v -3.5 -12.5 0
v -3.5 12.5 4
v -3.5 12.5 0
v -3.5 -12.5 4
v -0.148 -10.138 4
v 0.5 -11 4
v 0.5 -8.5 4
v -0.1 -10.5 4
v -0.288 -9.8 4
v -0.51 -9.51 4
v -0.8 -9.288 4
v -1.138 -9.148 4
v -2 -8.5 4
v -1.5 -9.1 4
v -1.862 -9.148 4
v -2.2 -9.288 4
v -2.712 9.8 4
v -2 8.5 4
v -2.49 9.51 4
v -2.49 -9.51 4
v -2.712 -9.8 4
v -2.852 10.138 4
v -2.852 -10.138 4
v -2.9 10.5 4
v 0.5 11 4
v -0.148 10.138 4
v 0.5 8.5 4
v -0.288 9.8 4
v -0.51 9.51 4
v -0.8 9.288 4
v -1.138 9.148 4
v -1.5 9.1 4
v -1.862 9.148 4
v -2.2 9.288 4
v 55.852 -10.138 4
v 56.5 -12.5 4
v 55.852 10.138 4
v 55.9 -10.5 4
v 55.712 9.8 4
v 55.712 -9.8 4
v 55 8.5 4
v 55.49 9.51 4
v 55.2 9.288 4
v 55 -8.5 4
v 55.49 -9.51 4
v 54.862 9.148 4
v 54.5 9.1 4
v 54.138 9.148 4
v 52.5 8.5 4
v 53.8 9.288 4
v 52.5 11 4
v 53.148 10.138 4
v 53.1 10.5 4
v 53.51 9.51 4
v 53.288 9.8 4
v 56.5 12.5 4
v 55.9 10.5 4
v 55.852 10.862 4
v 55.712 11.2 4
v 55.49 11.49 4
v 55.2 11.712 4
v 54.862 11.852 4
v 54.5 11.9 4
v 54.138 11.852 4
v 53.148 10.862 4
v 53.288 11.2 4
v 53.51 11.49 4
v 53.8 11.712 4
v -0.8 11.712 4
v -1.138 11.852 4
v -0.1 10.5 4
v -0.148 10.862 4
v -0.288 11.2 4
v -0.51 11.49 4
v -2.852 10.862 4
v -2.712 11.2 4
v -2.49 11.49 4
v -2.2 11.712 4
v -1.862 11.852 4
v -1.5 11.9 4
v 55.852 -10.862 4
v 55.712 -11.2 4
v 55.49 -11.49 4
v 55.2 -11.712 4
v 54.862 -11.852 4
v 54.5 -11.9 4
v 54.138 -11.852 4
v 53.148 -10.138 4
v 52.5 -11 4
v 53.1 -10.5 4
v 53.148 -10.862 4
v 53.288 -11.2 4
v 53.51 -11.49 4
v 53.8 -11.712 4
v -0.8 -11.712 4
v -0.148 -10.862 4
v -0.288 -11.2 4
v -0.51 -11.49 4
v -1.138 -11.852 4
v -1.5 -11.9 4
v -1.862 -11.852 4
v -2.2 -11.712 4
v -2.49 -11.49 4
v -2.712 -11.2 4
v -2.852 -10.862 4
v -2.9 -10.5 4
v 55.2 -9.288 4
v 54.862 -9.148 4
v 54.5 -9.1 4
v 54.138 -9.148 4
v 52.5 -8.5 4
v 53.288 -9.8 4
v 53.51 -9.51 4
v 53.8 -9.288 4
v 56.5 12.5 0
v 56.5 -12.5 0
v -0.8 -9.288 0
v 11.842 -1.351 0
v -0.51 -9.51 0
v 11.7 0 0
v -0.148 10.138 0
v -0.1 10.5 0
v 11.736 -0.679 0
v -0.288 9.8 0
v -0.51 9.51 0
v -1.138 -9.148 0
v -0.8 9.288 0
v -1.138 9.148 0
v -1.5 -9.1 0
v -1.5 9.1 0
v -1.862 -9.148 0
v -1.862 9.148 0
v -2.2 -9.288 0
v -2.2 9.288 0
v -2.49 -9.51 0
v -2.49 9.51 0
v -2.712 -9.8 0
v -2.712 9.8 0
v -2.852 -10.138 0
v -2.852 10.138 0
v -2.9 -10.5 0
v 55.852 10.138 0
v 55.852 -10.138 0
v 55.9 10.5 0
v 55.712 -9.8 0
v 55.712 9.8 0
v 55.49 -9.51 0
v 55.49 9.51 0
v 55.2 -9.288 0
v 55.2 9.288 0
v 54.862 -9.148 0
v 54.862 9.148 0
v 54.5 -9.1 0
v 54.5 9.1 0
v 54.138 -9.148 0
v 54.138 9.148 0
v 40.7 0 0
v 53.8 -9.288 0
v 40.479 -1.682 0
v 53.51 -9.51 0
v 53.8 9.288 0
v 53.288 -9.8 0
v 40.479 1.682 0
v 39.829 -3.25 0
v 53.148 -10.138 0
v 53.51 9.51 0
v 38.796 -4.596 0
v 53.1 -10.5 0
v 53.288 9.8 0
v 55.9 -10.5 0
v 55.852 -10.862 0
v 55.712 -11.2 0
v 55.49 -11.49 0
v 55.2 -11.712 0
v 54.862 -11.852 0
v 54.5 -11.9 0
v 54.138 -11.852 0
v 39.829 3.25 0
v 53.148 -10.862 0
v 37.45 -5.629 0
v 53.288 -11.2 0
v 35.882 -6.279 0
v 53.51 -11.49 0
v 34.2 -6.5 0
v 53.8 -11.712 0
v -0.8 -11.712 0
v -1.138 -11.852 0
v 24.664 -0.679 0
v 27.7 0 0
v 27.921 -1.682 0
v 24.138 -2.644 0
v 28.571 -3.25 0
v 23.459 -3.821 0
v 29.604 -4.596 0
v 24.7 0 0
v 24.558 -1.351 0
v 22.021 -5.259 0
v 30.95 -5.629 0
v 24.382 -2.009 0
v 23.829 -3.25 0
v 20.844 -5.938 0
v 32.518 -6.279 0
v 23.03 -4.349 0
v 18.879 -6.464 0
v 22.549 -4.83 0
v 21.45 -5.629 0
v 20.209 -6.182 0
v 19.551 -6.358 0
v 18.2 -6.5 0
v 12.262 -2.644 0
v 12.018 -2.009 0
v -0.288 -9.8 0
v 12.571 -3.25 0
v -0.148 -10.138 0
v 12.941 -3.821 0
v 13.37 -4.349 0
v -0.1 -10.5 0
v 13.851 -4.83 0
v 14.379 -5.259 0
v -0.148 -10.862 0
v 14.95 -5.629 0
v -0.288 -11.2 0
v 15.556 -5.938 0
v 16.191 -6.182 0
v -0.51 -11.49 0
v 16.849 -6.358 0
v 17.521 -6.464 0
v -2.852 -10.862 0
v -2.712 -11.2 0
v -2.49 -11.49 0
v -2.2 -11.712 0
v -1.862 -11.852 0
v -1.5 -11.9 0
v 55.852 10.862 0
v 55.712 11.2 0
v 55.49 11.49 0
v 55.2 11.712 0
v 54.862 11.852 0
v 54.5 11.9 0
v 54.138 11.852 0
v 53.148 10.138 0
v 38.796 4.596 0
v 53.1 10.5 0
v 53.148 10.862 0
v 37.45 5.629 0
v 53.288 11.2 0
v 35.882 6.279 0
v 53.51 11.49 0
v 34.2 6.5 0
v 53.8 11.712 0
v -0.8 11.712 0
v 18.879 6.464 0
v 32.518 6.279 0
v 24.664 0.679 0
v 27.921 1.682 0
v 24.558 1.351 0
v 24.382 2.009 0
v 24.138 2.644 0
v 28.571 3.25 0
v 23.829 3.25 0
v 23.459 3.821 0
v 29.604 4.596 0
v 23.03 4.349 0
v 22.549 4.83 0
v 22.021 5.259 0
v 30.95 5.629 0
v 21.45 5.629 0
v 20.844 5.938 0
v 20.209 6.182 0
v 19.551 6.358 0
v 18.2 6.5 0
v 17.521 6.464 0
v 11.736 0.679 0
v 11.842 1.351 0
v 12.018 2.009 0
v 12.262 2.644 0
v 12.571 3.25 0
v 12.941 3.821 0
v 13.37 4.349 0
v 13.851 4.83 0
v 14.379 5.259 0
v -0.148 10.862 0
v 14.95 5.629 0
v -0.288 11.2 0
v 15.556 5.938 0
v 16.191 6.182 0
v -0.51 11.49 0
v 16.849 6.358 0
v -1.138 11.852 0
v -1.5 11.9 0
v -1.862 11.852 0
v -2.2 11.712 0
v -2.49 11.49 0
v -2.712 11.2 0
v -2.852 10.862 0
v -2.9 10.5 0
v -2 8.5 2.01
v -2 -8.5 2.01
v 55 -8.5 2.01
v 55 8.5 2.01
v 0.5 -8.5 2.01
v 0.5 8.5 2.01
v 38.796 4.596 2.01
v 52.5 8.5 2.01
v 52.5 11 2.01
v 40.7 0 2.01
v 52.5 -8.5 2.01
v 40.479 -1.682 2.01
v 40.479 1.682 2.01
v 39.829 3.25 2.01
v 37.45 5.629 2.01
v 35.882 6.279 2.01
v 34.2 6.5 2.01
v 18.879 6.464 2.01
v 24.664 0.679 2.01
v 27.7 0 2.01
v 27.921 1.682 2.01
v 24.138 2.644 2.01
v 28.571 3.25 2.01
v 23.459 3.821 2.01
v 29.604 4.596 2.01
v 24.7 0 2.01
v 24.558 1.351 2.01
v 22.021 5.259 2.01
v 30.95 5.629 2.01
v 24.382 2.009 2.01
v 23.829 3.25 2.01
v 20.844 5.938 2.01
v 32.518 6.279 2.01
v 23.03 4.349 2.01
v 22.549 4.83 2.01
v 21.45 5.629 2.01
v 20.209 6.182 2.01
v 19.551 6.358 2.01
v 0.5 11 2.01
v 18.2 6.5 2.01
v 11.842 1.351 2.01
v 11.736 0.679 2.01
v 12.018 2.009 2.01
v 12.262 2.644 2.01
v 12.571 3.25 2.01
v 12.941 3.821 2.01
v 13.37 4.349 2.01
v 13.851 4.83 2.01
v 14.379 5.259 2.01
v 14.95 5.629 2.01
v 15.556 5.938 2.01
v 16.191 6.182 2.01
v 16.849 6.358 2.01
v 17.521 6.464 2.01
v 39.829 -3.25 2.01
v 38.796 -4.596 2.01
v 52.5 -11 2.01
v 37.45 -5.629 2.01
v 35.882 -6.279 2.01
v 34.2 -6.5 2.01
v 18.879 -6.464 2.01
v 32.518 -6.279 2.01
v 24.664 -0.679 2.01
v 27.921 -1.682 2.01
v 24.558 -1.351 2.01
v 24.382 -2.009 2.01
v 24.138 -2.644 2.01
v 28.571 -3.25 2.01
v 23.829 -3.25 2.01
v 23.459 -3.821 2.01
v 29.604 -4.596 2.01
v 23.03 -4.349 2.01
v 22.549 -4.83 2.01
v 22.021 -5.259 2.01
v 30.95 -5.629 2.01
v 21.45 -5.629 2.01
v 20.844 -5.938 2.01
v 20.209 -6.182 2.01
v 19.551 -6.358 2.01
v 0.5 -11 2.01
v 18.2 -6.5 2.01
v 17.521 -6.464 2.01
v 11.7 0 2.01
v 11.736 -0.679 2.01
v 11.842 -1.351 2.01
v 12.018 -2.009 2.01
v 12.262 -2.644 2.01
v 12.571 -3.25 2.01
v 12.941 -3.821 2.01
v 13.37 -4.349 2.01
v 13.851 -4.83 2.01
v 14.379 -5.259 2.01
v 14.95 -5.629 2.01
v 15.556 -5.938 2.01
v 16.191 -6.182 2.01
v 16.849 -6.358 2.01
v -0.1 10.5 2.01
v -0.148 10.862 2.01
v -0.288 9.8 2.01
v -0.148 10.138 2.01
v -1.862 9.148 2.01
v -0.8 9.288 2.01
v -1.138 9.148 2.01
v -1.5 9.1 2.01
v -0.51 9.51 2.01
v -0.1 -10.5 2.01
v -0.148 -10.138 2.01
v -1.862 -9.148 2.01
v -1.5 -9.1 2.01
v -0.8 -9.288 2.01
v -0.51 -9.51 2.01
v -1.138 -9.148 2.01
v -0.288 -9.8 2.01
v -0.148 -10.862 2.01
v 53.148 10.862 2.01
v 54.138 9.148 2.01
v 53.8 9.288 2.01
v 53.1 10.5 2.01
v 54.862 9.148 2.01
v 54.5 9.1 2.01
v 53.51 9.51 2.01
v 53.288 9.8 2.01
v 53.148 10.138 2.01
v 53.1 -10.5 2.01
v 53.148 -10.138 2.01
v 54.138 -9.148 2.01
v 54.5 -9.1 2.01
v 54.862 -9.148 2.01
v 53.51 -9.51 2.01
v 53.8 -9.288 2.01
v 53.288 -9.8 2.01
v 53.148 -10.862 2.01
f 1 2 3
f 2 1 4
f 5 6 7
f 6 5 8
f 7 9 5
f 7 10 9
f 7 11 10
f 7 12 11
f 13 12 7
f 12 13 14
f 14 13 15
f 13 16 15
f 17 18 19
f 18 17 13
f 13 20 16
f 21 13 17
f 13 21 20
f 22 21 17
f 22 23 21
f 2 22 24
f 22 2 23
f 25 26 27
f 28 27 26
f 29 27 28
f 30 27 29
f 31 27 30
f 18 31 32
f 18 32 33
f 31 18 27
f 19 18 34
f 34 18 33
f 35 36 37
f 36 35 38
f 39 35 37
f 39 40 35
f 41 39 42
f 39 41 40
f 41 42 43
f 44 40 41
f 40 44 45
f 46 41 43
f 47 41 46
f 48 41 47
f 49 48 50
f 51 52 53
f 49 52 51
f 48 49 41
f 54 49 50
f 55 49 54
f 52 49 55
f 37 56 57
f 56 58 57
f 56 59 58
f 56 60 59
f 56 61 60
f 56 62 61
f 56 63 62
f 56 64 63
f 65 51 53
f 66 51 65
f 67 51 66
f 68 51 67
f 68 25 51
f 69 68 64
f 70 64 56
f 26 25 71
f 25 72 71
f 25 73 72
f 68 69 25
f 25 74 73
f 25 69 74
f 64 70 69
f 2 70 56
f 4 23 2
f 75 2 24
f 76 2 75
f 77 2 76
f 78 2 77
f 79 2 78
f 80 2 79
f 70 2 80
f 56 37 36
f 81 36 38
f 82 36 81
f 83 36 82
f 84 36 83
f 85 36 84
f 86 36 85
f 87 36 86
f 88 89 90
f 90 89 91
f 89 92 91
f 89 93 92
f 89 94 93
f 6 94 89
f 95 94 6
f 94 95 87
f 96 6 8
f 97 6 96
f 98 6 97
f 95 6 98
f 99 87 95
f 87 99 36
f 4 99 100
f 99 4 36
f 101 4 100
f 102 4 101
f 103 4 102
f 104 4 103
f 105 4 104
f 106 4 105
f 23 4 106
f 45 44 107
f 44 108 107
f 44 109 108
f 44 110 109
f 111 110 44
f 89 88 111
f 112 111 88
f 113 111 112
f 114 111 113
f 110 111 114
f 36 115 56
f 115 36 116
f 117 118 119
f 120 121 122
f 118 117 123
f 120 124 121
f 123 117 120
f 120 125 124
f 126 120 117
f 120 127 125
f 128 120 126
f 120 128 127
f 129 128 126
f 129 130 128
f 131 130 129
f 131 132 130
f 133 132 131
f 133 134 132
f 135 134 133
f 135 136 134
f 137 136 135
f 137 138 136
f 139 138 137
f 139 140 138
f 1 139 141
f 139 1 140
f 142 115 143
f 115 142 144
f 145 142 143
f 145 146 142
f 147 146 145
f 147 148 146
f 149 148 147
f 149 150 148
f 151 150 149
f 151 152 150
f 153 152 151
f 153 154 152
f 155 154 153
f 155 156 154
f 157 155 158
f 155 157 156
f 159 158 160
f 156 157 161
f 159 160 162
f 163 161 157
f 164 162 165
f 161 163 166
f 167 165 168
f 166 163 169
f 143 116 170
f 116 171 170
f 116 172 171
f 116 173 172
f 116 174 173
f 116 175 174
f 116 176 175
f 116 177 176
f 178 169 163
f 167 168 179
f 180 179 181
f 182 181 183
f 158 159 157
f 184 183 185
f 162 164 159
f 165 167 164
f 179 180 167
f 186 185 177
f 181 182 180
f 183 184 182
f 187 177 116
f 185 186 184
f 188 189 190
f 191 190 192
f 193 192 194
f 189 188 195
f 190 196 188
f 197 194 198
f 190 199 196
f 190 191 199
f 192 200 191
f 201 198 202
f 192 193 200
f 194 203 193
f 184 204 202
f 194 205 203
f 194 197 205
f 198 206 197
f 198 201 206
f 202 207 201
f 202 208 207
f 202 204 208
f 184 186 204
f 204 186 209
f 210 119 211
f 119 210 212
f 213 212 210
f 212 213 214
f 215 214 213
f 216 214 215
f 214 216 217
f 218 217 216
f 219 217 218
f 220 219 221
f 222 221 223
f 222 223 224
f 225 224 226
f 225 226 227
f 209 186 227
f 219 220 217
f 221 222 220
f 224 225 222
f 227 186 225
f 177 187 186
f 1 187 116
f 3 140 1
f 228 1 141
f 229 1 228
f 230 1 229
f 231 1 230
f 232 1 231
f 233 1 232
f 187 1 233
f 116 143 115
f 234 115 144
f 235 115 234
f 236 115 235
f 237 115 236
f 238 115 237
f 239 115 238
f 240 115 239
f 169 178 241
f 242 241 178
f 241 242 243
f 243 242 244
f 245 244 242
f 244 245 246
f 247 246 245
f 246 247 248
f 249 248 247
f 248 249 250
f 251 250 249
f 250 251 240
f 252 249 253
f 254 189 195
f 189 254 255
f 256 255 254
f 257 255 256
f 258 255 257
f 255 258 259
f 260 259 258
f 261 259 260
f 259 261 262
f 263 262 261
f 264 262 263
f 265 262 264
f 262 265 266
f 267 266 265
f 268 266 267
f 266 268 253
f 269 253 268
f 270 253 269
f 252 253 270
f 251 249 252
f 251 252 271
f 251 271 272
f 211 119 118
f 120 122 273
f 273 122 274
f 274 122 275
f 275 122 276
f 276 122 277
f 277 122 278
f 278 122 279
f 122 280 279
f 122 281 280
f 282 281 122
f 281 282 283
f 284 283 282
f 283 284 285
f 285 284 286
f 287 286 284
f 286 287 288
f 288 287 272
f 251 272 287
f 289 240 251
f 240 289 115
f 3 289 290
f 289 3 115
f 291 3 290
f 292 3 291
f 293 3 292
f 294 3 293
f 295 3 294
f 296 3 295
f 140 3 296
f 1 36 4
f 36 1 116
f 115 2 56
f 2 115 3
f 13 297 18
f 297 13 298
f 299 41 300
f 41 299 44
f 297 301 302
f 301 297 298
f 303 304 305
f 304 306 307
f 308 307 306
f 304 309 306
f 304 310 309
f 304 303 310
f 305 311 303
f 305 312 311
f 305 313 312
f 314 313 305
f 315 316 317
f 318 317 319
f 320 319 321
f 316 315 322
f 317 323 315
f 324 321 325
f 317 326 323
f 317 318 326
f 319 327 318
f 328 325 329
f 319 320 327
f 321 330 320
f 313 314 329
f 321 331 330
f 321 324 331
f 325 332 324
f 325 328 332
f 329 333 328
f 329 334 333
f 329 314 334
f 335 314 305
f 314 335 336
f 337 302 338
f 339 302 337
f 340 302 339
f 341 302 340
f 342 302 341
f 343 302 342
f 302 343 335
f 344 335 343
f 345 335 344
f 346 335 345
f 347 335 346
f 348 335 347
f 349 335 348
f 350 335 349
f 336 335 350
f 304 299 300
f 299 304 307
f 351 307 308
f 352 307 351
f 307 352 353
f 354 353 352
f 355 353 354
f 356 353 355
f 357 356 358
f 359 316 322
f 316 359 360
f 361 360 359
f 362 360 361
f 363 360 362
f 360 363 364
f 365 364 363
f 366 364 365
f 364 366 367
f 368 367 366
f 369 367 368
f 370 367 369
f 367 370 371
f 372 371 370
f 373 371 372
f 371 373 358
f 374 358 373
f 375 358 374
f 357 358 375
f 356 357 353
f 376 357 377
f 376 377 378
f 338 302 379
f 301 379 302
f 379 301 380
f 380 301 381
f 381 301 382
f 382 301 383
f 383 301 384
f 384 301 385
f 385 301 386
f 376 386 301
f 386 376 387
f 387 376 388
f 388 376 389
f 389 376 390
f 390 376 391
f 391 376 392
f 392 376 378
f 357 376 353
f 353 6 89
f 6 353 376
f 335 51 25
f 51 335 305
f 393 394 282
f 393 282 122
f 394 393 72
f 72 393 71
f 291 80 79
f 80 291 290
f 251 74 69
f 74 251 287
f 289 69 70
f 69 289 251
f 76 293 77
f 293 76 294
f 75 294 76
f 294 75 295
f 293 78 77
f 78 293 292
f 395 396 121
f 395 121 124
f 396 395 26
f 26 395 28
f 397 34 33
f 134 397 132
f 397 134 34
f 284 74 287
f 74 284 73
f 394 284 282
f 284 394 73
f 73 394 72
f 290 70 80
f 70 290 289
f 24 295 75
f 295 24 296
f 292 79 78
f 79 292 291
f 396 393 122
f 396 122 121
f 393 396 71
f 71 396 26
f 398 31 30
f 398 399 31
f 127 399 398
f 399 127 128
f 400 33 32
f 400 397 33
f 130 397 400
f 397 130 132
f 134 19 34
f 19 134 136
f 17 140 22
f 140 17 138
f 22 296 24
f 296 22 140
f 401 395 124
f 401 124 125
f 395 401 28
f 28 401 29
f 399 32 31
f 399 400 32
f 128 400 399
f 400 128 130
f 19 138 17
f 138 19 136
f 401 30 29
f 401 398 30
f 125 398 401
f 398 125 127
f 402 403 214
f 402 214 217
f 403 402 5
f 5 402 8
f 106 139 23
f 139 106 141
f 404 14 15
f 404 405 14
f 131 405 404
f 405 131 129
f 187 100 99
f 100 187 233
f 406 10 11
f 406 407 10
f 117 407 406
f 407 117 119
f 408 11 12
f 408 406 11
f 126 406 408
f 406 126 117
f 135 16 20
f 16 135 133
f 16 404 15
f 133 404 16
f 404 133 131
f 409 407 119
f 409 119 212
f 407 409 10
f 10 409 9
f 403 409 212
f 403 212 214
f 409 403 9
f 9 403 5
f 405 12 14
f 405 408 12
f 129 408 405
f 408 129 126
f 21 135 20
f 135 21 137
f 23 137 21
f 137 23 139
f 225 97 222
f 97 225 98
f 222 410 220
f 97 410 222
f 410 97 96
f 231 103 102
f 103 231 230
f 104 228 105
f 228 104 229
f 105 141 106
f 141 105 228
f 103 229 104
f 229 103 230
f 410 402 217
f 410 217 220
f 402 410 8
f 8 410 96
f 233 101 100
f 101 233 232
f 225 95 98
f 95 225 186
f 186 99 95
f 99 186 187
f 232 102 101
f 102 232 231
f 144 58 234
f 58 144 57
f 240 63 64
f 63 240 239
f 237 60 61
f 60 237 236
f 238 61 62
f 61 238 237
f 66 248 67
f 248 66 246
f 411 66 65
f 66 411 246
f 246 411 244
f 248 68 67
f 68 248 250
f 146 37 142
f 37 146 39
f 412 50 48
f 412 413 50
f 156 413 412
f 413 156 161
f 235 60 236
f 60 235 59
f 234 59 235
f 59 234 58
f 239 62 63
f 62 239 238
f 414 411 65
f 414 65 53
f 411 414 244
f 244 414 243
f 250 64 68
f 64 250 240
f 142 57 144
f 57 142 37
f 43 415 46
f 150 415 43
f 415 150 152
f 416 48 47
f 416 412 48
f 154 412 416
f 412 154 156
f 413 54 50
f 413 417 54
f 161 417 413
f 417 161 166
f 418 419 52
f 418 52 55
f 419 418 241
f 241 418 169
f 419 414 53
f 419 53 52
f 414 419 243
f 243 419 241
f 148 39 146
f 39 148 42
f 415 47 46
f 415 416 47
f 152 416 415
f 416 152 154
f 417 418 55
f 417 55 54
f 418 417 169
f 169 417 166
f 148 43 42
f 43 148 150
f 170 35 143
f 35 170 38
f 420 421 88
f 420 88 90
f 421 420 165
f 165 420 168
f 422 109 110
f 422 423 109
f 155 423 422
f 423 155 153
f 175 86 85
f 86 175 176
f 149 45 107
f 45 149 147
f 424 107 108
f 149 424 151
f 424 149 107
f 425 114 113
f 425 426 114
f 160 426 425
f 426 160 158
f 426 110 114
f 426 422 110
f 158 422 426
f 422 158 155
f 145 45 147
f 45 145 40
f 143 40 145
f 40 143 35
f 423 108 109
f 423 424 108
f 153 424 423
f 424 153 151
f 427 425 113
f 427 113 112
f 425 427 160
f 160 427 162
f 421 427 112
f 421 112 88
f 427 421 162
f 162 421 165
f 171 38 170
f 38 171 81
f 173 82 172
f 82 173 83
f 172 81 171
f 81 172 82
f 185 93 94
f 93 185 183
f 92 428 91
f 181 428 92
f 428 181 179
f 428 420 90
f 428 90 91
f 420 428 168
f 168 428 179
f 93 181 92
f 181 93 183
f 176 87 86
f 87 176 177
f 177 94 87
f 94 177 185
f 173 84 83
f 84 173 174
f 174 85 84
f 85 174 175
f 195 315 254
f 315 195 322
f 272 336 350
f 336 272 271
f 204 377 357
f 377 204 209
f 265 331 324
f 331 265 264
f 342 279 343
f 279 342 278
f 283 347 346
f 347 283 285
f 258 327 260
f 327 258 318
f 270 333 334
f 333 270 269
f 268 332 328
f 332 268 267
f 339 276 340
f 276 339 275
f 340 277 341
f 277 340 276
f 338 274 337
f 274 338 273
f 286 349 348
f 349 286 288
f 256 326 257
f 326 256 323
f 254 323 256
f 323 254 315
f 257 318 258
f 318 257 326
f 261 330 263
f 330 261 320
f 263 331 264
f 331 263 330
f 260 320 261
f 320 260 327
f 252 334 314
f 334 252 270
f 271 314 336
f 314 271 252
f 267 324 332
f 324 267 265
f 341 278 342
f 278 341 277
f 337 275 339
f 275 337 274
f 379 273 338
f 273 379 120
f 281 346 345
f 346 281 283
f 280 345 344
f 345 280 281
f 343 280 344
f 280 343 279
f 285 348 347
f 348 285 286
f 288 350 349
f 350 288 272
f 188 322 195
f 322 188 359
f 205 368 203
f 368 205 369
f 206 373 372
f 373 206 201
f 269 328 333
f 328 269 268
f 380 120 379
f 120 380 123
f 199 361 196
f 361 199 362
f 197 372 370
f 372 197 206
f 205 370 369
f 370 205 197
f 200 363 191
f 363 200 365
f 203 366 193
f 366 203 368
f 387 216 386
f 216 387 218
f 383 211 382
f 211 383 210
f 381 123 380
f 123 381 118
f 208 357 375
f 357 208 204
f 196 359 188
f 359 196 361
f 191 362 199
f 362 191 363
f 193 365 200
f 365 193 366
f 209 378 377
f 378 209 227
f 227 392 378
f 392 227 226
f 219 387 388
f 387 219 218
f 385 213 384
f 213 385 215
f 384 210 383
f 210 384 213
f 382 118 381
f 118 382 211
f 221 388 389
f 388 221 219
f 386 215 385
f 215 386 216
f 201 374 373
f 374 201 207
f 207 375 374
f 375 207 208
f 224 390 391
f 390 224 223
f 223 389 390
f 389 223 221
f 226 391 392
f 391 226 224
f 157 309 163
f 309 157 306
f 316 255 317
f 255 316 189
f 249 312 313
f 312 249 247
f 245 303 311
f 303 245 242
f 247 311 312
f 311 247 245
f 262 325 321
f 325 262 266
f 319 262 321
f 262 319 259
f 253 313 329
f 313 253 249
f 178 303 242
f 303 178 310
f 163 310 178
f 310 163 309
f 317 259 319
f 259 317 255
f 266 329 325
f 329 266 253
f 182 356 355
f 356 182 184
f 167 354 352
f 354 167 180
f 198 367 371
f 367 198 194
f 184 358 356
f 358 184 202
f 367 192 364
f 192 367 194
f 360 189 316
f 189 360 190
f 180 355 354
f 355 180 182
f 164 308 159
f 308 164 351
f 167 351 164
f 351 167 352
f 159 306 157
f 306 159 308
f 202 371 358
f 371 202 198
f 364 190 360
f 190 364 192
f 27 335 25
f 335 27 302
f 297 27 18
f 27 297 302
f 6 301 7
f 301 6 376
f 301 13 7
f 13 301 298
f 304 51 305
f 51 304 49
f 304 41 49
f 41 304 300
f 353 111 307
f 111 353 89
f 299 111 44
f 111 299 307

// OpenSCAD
$fn=24;

difference(){
translate([-3.5,-12.5,0])cube([60,25,4]);
translate([-2,-11,2.01])cube([57,22,20]);
translate([-1.5,10.5,-1])cylinder(d=2.8,h=10);
translate([-1.5,-10.5,-1])cylinder(d=2.8,h=10);
translate([54.5,10.5,-1])cylinder(d=2.8,h=10);
translate([54.5,-10.5,-1])cylinder(d=2.8,h=10);
translate([13.7+4.5,0,-1])cylinder(d=13,h=6,$fn=60);
translate([29.7+4.5,0,-1])cylinder(d=13,h=6);
}

difference(){
union(){
translate([-3.5,8.5,0])cube([4,4,4]);
translate([-3.5,-12.5,0])cube([4,4,4]);
translate([52.5,8.5,0])cube([4,4,4]);
translate([52.5,-12.5,0])cube([4,4,4]);
}
translate([-1.5,10.5,-1])cylinder(d=2.8,h=10);
translate([-1.5,-10.5,-1])cylinder(d=2.8,h=10);
translate([54.5,10.5,-1])cylinder(d=2.8,h=10);
translate([54.5,-10.5,-1])cylinder(d=2.8,h=10);
}
